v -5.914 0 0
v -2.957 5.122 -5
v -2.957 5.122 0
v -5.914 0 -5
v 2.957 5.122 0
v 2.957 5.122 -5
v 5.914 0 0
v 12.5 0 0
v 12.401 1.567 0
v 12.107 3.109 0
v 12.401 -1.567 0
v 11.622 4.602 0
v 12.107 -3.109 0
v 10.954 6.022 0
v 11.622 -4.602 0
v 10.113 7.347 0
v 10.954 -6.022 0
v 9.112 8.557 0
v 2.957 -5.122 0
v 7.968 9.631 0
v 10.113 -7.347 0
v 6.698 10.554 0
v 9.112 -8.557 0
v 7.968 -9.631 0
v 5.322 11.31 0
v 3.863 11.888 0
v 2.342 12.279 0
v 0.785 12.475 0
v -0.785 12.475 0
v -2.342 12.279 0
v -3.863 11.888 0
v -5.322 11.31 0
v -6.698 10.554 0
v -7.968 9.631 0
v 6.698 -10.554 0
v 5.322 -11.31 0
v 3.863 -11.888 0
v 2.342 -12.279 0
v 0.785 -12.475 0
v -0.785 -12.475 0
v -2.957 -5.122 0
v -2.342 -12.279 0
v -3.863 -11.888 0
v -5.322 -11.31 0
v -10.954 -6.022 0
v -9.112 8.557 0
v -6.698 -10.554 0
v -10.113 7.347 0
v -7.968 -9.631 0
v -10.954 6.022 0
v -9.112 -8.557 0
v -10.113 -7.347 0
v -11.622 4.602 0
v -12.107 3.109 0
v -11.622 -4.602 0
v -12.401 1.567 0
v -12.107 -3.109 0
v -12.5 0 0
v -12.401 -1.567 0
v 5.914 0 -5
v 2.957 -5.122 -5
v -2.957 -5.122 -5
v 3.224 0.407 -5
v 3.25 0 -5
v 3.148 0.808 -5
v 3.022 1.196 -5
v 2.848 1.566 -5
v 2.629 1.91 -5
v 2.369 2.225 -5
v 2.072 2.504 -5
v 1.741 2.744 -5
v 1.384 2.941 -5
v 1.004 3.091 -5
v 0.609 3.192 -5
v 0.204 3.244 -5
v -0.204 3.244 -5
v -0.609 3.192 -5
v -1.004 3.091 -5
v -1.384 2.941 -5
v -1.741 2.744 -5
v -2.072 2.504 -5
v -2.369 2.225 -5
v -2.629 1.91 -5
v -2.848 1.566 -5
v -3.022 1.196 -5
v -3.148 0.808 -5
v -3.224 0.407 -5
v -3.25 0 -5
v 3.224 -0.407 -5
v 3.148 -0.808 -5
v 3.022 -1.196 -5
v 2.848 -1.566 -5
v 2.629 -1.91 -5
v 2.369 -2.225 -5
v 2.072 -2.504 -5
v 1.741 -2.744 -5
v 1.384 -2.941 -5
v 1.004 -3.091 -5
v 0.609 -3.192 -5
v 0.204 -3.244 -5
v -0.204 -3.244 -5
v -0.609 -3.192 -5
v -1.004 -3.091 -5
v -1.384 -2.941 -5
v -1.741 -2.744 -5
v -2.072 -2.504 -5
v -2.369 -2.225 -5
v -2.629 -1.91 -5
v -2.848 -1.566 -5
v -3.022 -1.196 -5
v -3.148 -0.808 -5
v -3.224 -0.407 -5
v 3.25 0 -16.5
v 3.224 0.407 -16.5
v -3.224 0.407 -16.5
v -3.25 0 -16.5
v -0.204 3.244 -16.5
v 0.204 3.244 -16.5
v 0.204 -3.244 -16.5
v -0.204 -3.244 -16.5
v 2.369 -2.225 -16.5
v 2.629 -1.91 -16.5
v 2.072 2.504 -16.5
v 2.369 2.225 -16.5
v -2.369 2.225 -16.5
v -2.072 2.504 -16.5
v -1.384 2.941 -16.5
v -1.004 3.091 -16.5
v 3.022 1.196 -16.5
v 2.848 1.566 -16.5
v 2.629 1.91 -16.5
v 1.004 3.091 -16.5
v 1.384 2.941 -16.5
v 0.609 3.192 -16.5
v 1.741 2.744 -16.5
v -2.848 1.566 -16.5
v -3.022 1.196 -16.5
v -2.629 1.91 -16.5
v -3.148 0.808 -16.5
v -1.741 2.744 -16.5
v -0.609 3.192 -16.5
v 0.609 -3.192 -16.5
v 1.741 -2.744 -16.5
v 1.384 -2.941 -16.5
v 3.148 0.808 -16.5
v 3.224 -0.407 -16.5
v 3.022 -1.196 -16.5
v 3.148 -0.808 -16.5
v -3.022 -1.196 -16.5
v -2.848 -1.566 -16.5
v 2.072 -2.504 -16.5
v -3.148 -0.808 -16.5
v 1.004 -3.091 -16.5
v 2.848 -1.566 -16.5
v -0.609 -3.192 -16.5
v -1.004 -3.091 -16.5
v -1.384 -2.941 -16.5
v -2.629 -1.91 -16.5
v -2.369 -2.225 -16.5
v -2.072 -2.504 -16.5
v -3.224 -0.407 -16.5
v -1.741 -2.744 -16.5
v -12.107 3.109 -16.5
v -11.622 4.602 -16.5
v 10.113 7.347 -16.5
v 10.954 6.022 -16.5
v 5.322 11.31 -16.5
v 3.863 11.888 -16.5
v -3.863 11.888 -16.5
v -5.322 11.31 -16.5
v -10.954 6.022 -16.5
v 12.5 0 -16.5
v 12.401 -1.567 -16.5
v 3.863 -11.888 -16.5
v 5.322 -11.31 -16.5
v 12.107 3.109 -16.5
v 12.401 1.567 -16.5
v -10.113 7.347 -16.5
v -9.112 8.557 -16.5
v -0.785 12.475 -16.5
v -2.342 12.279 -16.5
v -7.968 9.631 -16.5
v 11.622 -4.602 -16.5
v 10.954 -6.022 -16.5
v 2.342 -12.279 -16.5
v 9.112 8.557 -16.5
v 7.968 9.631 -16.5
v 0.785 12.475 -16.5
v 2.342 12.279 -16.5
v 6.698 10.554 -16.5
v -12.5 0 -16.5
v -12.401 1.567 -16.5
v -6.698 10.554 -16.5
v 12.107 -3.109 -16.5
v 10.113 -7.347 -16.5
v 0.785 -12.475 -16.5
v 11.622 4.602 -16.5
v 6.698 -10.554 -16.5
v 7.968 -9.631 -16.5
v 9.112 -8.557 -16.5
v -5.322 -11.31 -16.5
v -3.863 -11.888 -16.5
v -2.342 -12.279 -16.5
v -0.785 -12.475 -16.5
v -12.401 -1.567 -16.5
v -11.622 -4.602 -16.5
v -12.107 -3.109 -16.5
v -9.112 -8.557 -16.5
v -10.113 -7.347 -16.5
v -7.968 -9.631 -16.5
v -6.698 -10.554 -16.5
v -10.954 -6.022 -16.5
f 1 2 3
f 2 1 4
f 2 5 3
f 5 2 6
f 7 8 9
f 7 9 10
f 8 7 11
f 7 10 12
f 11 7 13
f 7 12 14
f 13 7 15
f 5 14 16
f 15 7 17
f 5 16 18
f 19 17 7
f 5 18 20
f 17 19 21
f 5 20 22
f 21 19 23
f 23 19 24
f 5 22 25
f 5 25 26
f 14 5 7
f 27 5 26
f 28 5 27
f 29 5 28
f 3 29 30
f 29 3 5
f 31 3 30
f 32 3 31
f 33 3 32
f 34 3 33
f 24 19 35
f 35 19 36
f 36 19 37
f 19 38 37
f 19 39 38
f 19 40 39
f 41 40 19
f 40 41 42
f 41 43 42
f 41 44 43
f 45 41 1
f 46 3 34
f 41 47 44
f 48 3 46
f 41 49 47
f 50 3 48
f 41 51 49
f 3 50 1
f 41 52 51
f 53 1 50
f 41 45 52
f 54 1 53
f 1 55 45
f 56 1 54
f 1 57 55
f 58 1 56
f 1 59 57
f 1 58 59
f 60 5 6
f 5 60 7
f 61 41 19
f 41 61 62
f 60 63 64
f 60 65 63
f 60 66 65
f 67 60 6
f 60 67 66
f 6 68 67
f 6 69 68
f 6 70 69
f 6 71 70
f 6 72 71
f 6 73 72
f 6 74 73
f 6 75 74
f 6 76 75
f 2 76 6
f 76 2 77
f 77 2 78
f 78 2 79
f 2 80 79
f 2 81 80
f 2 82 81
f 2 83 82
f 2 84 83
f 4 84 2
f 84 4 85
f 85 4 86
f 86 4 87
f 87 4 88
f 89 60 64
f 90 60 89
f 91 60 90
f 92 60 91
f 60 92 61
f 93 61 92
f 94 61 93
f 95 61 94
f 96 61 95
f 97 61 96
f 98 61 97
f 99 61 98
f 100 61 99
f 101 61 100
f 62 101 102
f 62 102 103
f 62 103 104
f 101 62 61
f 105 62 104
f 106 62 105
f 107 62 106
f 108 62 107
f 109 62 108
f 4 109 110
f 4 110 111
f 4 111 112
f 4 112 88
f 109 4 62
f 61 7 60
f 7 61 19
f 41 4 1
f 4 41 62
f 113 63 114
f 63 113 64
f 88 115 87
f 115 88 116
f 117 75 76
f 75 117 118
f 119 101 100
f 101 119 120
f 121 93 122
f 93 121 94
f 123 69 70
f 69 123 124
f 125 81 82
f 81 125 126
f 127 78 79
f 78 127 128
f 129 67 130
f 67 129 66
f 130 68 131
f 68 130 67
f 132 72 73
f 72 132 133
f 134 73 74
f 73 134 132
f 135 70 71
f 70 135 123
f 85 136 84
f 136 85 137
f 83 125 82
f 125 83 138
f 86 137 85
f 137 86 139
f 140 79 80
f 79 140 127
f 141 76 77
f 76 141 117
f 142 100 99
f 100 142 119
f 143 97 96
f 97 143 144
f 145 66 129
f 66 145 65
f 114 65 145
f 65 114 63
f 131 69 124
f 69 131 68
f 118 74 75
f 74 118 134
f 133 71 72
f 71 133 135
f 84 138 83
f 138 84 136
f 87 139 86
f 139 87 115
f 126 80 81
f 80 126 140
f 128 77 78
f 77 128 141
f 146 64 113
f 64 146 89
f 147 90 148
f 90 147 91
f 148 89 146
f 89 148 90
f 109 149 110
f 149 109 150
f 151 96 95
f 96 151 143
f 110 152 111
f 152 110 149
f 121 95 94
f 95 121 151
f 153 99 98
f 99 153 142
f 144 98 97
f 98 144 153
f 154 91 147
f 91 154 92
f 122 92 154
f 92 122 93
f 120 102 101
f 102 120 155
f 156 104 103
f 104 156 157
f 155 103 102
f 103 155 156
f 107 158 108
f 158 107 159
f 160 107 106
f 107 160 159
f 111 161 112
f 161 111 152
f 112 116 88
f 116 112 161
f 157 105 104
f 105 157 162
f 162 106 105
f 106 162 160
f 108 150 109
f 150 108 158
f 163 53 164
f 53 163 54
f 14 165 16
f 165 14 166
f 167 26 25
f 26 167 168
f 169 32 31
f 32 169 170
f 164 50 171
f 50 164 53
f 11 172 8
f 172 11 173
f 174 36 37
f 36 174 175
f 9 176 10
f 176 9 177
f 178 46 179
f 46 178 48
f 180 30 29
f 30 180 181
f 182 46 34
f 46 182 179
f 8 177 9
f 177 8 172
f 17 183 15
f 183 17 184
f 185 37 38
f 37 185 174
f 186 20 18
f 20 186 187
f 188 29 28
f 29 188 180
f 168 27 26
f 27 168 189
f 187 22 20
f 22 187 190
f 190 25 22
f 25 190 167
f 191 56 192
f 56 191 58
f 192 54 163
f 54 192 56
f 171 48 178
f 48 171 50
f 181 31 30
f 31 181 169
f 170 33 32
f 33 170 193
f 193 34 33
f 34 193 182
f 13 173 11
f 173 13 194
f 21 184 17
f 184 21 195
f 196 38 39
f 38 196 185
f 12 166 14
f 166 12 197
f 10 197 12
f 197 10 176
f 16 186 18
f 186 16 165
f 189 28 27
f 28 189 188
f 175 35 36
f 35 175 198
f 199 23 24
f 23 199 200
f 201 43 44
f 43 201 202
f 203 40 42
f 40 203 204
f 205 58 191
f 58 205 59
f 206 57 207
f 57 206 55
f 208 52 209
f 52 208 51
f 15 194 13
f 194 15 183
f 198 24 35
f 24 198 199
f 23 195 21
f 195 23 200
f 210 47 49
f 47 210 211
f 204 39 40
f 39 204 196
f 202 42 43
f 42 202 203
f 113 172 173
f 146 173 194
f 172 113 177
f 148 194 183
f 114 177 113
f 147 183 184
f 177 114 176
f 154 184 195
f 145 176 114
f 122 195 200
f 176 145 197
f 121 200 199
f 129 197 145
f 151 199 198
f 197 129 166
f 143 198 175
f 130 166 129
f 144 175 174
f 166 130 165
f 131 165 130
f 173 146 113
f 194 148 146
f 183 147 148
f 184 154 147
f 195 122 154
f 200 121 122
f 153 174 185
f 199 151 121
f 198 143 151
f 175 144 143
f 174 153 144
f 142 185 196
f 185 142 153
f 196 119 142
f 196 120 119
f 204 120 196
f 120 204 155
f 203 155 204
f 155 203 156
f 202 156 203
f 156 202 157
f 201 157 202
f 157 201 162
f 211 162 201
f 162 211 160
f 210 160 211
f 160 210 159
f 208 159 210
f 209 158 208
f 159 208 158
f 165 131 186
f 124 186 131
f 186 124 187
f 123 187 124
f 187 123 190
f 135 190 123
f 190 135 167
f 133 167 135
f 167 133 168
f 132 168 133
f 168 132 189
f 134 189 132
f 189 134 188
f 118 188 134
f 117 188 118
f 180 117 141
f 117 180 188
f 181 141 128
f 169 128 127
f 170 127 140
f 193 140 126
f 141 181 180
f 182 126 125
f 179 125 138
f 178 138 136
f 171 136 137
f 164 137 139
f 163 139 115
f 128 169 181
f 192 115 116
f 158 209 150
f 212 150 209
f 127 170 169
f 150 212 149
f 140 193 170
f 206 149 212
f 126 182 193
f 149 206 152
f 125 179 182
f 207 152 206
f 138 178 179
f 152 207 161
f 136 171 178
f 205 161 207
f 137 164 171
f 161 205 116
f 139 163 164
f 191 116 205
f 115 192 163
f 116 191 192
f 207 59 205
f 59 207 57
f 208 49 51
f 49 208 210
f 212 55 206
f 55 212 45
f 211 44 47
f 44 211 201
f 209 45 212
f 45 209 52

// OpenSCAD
$fn = 50;

difference() {
	union() {
		translate(v = [0, 0, -16.5]) {
			cylinder(h = 16.5, r = 12.5);
		}
		#translate(v = [0, 0, -18.0]) {
			cylinder(h = 18, r = 2.875);
		}
	}
	union() {
		translate(v = [0, 0, 0]) {
			rotate(a = [0, 0, 0]) {
				difference() {
					union() {
						translate(v = [0, 0, -5]) {
							linear_extrude(height = 5) {
								polygon(points = [[5.914249999999999, 0.0], [2.957125, 5.1218907443321156], [-2.9571249999999982, 5.1218907443321156], [-5.914249999999999, 7.242867331857232e-16], [-2.9571250000000022, -5.121890744332115], [2.9571249999999956, -5.121890744332118]]);
							}
						}
					}
					union();
				}
			}
		}
		#translate(v = [0, 0, -100.0]) {
			cylinder(h = 200, r = 3.25);
		}
	}
}
